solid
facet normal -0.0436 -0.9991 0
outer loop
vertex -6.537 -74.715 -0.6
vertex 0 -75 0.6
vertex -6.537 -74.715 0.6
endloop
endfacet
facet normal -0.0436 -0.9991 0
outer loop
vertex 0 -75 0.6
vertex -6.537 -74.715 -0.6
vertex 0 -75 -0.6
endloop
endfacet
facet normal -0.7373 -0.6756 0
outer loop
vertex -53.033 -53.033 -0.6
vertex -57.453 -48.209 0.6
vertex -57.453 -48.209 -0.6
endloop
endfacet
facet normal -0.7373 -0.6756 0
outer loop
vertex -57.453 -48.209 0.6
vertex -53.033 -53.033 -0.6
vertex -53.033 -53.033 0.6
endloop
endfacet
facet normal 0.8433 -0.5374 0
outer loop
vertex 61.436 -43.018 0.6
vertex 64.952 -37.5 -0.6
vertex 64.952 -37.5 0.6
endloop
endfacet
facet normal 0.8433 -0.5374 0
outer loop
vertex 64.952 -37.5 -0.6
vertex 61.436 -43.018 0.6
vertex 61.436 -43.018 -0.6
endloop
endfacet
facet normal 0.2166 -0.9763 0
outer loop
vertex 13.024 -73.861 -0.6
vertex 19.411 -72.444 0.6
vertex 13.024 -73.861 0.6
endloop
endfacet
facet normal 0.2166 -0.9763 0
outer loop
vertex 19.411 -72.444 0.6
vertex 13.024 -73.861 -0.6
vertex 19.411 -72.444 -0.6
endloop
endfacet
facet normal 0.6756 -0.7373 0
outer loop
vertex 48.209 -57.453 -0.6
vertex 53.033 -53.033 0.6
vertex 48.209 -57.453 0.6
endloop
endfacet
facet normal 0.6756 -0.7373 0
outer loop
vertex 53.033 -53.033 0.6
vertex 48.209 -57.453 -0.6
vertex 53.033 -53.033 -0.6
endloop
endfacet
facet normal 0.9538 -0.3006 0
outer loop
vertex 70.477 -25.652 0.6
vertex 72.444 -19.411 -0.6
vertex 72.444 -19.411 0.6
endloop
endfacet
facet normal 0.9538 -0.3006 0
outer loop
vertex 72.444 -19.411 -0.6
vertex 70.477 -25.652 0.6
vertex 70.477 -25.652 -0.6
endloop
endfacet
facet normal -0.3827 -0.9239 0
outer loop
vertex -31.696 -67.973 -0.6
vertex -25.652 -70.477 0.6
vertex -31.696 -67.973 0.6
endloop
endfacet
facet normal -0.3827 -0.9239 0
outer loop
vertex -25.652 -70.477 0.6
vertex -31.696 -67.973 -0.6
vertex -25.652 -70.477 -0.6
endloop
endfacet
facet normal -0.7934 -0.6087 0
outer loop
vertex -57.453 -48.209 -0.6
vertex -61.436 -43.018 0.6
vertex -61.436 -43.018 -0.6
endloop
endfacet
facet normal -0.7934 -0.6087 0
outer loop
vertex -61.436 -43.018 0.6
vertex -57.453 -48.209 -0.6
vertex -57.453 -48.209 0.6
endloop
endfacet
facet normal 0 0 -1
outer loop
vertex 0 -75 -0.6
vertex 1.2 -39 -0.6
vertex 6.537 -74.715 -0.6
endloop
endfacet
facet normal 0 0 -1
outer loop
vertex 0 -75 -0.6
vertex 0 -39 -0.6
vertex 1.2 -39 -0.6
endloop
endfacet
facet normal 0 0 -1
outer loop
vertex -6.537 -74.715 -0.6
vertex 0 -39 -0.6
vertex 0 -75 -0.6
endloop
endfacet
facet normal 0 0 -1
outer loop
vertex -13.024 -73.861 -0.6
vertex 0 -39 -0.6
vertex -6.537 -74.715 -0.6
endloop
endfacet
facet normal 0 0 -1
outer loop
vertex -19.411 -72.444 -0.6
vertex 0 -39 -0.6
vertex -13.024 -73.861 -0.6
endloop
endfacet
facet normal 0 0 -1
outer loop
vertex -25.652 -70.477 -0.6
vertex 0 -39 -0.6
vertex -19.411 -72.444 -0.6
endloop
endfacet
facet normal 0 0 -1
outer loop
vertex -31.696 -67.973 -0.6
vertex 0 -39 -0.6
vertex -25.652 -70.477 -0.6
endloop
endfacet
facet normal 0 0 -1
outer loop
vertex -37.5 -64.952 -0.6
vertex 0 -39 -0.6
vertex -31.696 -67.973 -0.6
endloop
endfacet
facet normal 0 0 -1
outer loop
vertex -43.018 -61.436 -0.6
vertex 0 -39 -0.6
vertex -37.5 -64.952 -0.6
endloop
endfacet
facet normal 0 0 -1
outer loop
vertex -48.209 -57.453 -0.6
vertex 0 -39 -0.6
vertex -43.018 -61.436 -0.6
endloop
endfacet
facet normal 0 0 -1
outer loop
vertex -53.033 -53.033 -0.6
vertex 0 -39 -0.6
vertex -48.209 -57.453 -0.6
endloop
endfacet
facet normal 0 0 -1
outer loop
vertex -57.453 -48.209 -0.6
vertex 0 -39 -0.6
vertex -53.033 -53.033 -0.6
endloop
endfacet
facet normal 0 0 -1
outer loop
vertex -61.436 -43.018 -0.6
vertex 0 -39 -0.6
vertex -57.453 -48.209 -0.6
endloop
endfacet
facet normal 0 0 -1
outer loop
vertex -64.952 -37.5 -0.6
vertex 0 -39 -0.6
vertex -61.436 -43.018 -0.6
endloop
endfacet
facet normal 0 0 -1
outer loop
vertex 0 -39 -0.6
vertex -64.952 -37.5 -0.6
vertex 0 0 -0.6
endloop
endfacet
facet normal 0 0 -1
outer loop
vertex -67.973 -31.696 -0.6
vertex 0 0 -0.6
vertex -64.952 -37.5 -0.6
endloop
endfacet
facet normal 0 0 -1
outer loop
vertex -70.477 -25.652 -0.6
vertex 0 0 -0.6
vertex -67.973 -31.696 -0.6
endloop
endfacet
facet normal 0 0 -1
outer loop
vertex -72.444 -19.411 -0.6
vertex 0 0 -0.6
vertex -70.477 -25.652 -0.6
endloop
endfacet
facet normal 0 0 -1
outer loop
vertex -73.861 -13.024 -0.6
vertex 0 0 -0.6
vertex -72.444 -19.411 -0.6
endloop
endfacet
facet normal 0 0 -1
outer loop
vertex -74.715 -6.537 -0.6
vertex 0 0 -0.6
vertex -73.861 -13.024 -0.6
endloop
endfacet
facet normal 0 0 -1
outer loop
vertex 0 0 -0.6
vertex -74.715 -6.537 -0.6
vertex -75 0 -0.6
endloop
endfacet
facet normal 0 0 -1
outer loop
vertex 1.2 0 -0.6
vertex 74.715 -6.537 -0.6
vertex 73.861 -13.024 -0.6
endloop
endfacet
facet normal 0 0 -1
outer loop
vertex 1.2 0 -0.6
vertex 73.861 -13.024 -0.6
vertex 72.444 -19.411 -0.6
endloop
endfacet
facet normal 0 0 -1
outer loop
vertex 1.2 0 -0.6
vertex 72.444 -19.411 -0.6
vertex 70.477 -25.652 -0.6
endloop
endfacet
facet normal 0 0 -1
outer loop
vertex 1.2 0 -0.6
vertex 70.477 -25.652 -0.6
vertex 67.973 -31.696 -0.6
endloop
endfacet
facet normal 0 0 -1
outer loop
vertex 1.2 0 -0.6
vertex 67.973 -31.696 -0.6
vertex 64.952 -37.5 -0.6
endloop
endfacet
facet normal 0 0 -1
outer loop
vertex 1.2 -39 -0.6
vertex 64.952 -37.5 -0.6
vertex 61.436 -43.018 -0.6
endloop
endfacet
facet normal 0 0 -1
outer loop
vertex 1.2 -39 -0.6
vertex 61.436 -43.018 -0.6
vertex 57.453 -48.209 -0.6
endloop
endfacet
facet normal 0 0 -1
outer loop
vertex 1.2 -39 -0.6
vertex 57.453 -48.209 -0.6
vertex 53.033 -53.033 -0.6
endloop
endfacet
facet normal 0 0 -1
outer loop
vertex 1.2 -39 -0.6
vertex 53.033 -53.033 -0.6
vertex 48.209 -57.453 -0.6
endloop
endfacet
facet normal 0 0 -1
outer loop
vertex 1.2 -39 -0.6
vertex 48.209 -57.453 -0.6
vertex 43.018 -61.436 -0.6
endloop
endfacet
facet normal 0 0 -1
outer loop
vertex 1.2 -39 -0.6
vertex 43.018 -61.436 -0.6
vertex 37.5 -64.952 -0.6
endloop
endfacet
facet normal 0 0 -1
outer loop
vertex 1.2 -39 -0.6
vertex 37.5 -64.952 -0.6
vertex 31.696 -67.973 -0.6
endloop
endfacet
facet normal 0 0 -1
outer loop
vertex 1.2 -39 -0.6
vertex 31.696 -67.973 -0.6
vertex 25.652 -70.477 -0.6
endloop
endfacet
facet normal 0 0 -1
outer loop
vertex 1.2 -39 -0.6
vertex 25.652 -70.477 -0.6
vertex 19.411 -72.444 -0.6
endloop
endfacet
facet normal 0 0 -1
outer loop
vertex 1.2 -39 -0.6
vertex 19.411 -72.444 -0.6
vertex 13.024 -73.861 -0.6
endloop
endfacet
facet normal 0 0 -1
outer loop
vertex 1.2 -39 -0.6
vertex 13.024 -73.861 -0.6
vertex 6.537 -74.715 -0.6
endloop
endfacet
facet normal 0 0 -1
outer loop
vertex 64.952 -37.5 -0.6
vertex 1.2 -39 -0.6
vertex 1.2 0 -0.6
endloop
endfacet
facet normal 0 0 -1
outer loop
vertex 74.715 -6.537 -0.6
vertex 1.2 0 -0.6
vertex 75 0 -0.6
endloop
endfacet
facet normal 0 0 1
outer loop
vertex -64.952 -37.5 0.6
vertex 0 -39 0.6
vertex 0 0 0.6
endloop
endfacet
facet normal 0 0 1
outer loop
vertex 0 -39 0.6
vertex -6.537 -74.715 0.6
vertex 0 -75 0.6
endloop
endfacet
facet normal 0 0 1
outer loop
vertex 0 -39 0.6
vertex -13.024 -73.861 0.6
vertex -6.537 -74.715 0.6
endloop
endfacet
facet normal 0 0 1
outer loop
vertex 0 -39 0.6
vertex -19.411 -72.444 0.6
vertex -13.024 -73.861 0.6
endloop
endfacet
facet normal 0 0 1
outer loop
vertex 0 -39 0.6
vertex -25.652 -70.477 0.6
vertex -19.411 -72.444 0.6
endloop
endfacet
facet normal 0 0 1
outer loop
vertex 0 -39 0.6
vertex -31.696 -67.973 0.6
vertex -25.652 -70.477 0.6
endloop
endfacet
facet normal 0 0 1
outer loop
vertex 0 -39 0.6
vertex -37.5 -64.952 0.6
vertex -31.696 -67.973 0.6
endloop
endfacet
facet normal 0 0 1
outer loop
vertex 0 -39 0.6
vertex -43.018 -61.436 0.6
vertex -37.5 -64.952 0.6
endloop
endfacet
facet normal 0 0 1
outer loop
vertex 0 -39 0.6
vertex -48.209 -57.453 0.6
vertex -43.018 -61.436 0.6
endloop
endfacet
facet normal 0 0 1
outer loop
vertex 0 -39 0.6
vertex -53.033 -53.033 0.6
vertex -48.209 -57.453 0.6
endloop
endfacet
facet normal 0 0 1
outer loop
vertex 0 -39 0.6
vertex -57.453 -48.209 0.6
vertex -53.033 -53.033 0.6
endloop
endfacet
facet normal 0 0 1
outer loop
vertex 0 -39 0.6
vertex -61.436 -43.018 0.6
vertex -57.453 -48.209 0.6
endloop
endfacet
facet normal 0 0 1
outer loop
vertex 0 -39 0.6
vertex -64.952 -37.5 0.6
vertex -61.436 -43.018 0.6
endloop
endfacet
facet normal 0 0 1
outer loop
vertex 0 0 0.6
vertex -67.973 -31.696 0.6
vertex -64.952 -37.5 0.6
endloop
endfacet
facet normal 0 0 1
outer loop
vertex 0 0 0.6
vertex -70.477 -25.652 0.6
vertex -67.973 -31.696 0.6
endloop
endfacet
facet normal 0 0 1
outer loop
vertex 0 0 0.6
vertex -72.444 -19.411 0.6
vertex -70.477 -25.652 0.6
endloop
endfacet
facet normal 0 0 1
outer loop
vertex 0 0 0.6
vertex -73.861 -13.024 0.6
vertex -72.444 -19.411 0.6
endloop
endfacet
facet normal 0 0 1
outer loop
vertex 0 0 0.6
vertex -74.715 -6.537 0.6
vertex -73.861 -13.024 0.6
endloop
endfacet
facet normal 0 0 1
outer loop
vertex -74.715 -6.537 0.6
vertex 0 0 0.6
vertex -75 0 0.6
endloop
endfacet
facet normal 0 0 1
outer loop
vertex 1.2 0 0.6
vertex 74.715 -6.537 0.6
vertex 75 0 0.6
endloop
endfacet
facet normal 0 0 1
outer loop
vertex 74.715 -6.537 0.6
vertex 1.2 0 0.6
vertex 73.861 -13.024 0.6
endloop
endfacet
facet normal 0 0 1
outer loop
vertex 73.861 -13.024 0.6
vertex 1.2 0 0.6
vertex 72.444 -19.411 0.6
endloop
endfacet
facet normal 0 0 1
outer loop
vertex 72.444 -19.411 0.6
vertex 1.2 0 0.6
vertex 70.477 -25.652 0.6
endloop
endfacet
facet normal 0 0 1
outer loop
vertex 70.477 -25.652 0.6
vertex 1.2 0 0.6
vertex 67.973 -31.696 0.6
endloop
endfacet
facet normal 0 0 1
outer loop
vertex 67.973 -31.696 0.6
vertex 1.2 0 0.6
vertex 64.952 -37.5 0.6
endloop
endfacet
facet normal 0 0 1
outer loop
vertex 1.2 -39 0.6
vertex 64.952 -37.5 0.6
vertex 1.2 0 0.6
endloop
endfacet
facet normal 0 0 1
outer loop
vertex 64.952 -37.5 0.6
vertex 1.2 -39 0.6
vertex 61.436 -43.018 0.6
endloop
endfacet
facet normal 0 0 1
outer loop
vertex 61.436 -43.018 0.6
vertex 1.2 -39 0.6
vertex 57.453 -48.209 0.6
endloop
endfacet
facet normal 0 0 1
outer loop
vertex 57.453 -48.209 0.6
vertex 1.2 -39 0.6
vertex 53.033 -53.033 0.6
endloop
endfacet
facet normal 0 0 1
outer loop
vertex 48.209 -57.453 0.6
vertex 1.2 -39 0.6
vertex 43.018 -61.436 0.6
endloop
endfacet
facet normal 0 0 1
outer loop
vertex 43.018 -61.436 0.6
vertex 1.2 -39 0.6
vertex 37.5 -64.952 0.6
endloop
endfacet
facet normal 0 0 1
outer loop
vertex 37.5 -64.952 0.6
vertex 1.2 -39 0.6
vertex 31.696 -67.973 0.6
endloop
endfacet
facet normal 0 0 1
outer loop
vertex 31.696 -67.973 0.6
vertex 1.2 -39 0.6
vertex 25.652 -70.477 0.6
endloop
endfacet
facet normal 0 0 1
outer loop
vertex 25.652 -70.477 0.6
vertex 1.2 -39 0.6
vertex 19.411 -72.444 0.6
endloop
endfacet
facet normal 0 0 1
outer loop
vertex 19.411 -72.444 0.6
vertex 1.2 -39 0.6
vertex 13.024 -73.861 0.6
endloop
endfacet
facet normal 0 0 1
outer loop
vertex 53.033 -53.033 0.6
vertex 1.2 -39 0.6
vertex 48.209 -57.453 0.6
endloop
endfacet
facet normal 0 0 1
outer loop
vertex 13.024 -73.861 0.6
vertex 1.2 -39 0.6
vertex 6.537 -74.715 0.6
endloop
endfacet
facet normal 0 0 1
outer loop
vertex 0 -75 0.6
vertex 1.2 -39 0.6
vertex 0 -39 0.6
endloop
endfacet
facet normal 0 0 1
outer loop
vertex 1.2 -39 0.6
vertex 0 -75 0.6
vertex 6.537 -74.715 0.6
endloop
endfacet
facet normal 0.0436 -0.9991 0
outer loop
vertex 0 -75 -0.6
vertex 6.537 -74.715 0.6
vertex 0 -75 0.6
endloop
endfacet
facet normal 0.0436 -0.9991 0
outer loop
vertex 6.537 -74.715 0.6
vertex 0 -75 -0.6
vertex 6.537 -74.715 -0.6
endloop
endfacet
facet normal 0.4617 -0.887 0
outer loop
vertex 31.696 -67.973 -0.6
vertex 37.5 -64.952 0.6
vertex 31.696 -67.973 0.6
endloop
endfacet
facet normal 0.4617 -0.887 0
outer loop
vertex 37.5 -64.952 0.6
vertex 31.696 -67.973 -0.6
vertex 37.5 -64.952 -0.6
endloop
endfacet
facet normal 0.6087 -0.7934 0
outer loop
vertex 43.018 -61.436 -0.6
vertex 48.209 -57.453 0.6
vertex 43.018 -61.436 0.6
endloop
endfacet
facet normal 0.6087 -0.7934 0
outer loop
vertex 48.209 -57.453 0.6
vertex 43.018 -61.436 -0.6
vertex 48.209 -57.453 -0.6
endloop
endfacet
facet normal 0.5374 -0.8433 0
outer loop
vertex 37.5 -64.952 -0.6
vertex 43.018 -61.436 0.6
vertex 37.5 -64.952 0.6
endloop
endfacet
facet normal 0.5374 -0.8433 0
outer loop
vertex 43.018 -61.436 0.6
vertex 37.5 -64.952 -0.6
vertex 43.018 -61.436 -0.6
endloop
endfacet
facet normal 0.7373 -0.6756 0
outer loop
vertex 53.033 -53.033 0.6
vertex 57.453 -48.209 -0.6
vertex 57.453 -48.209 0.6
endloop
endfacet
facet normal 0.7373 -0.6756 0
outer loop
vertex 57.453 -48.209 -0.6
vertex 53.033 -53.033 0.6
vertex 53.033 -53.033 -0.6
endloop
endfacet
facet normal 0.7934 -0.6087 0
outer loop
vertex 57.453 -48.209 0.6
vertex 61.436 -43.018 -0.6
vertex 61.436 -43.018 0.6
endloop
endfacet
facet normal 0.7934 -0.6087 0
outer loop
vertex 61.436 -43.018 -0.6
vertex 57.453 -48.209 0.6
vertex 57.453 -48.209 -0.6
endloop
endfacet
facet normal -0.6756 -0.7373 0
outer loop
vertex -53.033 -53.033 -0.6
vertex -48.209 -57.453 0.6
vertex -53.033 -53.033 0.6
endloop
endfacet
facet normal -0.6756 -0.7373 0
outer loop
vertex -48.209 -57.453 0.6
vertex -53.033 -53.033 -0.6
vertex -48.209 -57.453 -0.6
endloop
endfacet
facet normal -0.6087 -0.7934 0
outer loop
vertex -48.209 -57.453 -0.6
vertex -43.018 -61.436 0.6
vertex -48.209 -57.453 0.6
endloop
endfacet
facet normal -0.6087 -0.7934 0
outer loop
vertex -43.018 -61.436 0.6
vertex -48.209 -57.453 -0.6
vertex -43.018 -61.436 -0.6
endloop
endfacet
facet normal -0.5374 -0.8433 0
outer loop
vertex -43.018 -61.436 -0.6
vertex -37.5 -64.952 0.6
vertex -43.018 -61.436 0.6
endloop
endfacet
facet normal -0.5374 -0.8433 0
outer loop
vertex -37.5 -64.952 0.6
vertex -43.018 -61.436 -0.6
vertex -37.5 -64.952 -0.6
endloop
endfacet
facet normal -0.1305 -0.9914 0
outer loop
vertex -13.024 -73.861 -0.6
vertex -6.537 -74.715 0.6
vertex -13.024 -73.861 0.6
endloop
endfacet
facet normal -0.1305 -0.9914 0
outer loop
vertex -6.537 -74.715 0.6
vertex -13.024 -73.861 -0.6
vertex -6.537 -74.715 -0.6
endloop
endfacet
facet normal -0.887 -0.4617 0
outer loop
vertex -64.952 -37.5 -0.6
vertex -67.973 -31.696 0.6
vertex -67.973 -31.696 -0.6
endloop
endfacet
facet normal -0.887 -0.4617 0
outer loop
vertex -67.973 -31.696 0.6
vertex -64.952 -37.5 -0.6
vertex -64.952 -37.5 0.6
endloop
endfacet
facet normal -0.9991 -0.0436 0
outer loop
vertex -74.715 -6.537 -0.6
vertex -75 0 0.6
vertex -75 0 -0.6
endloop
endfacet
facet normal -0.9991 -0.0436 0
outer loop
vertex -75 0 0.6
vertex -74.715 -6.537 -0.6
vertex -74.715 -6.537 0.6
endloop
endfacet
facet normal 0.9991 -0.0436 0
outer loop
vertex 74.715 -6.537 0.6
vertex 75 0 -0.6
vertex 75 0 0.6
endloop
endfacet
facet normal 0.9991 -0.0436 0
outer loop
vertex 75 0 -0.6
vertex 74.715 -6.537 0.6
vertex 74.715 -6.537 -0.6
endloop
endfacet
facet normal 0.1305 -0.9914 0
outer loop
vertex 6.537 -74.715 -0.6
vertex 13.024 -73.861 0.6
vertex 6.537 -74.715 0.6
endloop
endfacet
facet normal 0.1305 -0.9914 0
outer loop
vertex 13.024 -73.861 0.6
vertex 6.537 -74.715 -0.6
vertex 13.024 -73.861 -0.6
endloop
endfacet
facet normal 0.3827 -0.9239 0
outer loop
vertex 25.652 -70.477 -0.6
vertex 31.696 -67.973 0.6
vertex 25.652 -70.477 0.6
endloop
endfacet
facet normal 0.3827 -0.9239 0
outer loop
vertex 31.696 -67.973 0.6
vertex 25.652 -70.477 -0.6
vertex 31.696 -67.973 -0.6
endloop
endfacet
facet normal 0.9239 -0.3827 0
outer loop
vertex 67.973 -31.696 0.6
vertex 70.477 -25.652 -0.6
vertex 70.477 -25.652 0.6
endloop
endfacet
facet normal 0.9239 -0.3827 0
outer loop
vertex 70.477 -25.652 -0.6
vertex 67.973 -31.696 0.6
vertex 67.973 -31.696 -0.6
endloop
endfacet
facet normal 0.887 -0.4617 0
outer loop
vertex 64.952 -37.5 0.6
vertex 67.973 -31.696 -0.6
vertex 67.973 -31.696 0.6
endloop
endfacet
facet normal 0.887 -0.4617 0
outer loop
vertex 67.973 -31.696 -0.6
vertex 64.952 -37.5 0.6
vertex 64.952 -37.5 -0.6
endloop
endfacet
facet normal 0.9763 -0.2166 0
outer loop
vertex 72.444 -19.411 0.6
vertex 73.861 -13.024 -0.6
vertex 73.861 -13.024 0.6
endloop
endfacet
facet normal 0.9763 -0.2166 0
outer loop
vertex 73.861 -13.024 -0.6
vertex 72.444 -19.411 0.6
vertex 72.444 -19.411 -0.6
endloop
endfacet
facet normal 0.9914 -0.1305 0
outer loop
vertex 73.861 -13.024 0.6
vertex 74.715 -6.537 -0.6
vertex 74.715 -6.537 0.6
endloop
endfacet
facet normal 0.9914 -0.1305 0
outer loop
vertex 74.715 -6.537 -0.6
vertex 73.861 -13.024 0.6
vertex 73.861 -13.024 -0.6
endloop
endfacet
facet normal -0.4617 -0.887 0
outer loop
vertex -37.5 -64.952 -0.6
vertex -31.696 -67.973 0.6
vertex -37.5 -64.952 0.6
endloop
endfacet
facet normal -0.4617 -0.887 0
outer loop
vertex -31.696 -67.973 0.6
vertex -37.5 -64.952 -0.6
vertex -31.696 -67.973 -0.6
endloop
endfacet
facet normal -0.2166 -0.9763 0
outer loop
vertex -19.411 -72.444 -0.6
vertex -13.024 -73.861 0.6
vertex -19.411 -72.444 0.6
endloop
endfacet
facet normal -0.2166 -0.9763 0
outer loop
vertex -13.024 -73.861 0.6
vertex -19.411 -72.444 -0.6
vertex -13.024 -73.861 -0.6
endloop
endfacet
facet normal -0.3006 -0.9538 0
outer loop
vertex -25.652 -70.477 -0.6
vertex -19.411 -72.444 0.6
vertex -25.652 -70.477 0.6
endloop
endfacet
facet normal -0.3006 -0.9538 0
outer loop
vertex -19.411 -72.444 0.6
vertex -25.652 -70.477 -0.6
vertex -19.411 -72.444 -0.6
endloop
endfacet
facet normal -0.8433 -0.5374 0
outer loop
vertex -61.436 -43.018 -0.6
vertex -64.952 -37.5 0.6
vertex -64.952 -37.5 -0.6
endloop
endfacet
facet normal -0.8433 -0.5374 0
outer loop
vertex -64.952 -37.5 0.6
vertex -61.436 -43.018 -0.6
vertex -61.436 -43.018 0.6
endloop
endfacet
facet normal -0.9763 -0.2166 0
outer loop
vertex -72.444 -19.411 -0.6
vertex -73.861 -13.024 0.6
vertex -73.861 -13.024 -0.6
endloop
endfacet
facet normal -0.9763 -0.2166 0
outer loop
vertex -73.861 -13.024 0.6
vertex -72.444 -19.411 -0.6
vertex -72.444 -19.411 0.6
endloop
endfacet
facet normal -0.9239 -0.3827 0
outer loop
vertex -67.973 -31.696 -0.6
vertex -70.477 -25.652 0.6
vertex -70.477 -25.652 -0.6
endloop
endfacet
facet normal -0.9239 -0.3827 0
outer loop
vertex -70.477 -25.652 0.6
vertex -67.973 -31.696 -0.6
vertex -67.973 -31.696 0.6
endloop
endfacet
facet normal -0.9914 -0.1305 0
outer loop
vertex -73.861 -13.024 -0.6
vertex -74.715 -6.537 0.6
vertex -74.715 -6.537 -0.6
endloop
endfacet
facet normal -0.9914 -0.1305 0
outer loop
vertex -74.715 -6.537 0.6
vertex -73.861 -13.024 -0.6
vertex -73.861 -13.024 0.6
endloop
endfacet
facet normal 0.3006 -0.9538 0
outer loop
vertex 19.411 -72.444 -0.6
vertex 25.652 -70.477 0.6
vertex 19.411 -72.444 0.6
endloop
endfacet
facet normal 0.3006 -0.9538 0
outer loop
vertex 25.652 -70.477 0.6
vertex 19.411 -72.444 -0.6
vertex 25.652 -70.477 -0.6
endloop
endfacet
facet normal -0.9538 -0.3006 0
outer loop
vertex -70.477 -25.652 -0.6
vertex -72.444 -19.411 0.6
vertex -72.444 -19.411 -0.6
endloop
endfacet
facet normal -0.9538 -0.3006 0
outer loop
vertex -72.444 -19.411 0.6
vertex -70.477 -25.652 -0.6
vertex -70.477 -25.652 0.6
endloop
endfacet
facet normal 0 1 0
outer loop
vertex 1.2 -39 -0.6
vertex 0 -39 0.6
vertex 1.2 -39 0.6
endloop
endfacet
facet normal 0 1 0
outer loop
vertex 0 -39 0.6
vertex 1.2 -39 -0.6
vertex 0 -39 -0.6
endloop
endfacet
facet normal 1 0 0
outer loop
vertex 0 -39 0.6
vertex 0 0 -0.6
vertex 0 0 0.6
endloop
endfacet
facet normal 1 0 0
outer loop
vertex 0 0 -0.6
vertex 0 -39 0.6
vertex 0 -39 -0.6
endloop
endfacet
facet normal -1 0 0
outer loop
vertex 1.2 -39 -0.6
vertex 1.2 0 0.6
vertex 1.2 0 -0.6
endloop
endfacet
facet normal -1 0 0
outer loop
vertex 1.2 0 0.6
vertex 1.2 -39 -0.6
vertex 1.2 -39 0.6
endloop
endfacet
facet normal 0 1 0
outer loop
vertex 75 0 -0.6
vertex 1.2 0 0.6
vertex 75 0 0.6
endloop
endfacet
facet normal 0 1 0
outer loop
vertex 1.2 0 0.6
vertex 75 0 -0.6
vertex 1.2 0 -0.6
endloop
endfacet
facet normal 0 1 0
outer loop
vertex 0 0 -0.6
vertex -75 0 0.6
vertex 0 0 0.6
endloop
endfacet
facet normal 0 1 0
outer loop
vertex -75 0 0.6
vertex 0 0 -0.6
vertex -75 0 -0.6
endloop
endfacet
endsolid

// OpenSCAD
// CSG-modules.scad - Basic usage of modules, if, color, $fs/$fa

// Global resolution
$fs = 0.1;  // Don't generate smaller facets than 0.1 mm
$fa = 5;    // Don't generate larger angles than 5 degrees

difference(){
    union(){
    base();/*
        riser1();
        riser2();
            rotate([0,0,90]) riser1();
            rotate([0,0,270]) riser1();
            rotate([0,0,90]) riser2();
            rotate([0,0,270]) riser2();*/        
    }
    //baseSlot();
    rotate([0,0,90]) translate([37.5,0,0]) baseSlot();
    rotate([0,0,270]) translate([-37,0,0]) baseSlot();
    darkside();

}


//rotate([0,0,90]) translate([37.5,0,0]) baseASlot();

module base() {
    color("Blue") cylinder(h=1.2, r=75, center=true);
    }
    
module baseSlot() {
    color("Red") translate([0,0,-3]) cube([76, 1.2, 6]); 
    }
   
module riser1() {
    color("Yellow") translate([37.5,2,1]) cube([34,1.2,3]);
    }    
    
module riser2() {
    color("Green") translate([37.5,-2,1]) cube([34,1.2,3]);
    }
    
module darkside() {
    translate([-250,0,-250])cube([500,500,500]);
    }
